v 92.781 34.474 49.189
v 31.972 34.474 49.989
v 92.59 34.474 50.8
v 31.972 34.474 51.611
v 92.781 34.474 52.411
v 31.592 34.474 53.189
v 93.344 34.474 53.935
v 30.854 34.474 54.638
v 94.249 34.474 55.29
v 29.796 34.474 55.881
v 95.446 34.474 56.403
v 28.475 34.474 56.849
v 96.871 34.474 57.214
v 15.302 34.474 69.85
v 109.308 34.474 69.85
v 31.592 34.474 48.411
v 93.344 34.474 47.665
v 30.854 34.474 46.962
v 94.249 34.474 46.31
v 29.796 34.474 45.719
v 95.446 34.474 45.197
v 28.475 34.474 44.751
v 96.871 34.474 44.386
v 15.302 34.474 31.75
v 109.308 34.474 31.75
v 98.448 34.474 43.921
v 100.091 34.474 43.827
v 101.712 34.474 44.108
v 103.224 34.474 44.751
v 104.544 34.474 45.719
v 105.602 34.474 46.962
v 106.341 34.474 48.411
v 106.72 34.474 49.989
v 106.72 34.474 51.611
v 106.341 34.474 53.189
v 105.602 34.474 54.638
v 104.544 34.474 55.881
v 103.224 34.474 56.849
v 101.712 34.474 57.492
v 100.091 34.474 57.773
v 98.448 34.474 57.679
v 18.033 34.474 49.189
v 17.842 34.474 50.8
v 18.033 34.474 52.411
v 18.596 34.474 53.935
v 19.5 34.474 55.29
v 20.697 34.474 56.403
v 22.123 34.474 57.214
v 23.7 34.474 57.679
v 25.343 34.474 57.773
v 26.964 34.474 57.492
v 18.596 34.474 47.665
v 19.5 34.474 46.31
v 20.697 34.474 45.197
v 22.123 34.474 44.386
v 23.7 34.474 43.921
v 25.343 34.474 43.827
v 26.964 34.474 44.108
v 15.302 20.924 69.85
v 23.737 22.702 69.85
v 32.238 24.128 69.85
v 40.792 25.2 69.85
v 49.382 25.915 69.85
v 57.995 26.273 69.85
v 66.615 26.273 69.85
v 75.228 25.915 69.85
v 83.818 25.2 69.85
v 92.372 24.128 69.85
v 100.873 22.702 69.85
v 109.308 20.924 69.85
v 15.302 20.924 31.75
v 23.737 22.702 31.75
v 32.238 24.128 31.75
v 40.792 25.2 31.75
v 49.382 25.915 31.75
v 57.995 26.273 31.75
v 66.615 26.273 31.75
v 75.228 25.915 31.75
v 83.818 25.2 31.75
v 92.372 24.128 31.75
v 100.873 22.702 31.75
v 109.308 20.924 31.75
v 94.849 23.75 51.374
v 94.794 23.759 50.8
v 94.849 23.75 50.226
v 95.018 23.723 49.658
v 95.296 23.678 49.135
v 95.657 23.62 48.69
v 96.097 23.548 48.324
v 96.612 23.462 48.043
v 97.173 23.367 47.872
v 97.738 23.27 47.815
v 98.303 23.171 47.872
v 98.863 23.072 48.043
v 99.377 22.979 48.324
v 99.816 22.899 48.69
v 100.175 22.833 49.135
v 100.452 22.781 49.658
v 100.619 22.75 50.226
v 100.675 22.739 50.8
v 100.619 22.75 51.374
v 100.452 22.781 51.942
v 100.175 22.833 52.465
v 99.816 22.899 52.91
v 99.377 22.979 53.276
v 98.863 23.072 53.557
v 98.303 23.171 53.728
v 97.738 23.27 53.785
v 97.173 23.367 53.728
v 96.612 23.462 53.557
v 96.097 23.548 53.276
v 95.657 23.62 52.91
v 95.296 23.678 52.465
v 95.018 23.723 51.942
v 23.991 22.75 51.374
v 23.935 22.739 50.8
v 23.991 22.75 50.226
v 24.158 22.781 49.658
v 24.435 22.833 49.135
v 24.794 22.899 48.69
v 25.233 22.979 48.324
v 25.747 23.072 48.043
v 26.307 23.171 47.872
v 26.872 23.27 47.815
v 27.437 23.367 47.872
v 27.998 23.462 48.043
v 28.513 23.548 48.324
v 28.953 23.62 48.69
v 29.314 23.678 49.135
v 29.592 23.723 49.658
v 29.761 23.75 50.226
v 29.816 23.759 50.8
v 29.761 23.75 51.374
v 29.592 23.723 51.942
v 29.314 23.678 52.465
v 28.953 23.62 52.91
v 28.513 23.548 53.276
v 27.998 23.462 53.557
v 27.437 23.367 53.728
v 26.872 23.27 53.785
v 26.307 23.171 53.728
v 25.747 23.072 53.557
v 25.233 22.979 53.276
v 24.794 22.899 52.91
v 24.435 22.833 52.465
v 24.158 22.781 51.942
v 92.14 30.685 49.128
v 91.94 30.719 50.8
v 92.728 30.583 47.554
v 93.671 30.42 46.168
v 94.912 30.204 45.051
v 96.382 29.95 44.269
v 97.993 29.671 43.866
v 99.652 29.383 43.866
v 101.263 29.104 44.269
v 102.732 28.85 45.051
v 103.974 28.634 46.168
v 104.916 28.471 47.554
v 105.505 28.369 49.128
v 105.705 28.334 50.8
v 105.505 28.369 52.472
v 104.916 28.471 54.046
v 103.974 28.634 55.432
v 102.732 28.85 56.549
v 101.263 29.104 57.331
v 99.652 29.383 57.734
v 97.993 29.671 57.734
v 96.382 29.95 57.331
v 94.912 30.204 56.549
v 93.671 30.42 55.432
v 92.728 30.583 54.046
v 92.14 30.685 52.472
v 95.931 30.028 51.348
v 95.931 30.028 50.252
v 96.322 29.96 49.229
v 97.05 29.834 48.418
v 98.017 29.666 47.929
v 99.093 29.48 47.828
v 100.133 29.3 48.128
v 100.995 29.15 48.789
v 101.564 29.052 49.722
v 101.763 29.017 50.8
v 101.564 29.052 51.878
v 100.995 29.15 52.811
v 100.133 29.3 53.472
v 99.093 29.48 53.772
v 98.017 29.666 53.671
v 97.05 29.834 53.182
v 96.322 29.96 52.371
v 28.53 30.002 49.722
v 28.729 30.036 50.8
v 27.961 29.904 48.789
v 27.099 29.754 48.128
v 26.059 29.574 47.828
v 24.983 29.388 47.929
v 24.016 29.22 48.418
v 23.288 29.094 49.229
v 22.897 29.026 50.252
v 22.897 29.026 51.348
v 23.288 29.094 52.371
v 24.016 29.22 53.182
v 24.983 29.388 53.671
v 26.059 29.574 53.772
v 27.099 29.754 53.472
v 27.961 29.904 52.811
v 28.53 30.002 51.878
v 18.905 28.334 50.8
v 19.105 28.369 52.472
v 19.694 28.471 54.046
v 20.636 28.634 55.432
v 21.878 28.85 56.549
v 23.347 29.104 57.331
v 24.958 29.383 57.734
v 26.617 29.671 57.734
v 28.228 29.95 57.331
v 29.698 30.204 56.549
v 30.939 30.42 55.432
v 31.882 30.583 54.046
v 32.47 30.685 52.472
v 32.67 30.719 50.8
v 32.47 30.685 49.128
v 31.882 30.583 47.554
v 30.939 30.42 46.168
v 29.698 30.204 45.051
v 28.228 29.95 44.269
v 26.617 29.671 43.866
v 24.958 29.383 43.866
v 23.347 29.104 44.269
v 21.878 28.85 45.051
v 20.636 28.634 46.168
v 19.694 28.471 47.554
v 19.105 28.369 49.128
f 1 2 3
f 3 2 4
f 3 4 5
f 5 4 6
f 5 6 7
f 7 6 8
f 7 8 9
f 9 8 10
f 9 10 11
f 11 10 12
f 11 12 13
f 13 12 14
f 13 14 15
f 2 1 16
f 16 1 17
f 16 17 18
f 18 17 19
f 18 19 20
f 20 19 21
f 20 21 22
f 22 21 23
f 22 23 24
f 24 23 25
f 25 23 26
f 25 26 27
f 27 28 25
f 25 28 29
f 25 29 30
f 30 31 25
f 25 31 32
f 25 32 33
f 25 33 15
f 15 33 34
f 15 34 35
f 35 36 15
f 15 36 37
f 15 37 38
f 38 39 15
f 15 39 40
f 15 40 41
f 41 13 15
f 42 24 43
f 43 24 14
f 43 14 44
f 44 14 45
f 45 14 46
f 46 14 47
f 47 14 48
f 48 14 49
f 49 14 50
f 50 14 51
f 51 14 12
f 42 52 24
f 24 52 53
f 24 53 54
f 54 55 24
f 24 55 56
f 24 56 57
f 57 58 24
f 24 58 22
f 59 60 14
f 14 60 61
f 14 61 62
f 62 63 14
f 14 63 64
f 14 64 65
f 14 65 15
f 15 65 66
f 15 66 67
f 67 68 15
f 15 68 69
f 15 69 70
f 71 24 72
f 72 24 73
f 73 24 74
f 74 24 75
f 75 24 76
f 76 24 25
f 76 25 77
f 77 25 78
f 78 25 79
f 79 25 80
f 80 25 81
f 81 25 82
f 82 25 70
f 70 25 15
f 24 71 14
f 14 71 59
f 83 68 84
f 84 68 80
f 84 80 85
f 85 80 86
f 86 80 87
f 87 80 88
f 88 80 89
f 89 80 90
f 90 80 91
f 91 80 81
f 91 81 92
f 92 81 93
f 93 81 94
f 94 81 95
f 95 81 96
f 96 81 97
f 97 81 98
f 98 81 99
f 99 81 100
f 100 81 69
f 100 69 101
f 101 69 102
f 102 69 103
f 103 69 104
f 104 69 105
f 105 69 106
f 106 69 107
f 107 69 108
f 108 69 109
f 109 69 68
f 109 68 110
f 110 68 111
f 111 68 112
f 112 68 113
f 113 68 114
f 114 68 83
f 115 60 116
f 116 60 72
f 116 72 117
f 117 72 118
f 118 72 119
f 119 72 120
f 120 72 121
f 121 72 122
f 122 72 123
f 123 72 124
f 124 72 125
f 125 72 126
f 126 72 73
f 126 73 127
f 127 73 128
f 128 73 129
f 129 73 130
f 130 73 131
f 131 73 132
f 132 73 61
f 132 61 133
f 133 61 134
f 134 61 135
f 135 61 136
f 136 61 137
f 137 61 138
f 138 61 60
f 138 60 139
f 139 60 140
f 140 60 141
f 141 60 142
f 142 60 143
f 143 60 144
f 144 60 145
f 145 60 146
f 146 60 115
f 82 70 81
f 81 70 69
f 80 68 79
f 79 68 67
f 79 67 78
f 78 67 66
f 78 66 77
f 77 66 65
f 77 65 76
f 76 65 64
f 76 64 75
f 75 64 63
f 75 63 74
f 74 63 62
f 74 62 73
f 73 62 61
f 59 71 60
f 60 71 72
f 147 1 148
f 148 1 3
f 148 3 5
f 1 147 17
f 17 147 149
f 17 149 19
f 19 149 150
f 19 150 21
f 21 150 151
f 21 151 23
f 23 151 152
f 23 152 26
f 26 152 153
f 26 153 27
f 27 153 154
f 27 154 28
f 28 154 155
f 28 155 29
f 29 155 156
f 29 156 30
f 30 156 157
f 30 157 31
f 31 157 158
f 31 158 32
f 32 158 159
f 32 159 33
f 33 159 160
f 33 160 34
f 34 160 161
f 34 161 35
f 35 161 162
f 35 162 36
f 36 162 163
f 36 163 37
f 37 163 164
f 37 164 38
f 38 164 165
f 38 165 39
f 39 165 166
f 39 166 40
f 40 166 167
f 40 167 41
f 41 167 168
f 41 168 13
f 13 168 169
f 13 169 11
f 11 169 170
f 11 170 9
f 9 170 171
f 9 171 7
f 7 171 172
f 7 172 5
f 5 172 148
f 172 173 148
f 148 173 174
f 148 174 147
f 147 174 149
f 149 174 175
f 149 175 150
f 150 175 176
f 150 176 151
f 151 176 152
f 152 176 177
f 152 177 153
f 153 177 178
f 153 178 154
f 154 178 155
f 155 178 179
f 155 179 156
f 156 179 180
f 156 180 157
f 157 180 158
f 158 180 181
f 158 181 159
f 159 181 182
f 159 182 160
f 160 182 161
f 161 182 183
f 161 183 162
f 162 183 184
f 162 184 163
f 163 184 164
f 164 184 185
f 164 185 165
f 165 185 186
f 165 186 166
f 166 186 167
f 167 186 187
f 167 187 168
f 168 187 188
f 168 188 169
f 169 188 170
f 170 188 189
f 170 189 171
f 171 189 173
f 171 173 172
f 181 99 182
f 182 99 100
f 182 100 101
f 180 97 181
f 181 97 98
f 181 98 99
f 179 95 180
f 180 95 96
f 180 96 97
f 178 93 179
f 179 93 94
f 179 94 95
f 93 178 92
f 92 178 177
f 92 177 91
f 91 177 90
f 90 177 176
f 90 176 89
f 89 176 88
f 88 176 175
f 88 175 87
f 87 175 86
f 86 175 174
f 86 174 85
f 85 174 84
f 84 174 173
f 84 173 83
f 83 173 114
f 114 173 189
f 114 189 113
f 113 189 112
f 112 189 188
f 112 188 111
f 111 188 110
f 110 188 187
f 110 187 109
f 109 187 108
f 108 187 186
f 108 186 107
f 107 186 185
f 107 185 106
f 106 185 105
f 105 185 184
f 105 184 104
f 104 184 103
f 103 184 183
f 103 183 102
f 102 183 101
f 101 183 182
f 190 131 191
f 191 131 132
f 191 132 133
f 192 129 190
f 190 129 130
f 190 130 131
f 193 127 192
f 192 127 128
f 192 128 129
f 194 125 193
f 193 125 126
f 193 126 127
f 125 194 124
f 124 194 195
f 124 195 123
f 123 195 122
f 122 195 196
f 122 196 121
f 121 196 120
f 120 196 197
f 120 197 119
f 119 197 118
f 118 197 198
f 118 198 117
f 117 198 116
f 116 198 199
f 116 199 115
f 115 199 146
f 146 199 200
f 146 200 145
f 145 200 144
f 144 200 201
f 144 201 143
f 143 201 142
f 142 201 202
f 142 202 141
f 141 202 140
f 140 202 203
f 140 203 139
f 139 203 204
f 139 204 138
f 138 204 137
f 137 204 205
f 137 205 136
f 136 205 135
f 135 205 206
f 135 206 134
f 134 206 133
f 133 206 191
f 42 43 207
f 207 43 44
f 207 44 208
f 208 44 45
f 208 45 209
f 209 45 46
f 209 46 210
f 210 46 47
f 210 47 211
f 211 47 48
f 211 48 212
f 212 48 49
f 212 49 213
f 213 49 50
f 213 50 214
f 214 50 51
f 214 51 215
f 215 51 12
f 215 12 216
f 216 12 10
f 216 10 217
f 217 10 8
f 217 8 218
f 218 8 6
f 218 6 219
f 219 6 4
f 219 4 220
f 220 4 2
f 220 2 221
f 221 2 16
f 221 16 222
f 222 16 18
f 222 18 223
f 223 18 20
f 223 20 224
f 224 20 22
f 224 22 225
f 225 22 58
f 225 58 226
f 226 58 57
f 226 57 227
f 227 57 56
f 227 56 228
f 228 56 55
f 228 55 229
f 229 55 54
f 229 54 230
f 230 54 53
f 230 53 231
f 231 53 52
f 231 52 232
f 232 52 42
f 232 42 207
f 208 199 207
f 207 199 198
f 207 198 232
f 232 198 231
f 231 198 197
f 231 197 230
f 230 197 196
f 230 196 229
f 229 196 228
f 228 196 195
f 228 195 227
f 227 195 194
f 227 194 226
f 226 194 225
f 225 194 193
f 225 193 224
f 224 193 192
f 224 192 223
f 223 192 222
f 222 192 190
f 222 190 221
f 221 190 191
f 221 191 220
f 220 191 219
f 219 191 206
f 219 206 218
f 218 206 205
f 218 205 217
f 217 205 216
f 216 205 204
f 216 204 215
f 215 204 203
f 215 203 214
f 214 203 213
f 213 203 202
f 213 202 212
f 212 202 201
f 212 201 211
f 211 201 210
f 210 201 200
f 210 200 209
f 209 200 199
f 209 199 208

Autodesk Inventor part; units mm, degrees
ref_plane "YZ Plane" through (0, 0, 0) normal (1, 0, 0) x (0, 1, 0)
ref_plane "XZ Plane" through (0, 0, 0) normal (0, 1, 0) x (-1, 0, 0)
ref_plane "XY Plane" through (0, 0, 0) normal (0, 0, 1) x (1, 0, 0)
sketch "Sketch3" plane through (0, 0, 0) normal (0, 0, 1) x (1, 0, 0)
  line L0 (11.505, 42.3202) -> (113.105, 42.3202)
  line L1 (113.105, 42.3202) -> (113.105, 16.9202)
  line L2 (113.105, 16.9202) -> (11.505, 16.9202)
  line L3 (11.505, 16.9202) -> (11.505, 42.3202)
  point P0 (0, 0)
  dimension "d11" = 101.6
  dimension "d12" = 25.4
extrude "Extrusion1" add sketch "Sketch3" along normal blind 50.8
sketch "Sketch4" plane through (0, 0, 50.8) normal (0, 0, 1) x (1, 0, 0)
  line L0 (11.505, 16.9202) -> (113.105, 16.9202) projected
  line L1 (62.305, 23.2702) -> (62.305, 26.3182)
  line L2 (97.738, 23.2702) -> (26.872, 23.2702)
  circle A0 centre (62.305, -181.1601) radius 207.4783
  point P0 (0, 0)
extrude "Extrusion2" cut sketch "Sketch4" against normal blind 50.8
sketch "Sketch6" plane through (0, 0, 50.8) normal (0, 0, 1) x (1, 0, 0)
  arc A0 (113.105, 20.003) -> (11.505, 20.003) centre (62.305, -181.1601) ccw projected
  line L0 (62.305, 26.3182) -> (62.305, 23.2702)
  line L1 (62.305, 23.2702) -> (26.872, 23.2702)
  line L2 (26.872, 23.2702) -> (97.738, 23.2702)
  arc A1 (97.738, 23.2702) -> (26.872, 23.2702) centre (62.305, -181.1601) ccw
  line L3 (26.872, 23.2702) -> (29.8127, 23.7797)
  line L4 (26.872, 23.2702) -> (29.8565, 23.2702) construction
  line L5 (29.8127, 23.7797) -> (28.7286, 30.0365)
  line L6 (28.7286, 30.0365) -> (32.6703, 30.7195)
  line L7 (32.6703, 30.7195) -> (32.0199, 34.4735)
  line L8 (26.872, 23.2702) -> (22.5356, 48.2973)
  line L9 (26.872, 23.2702) -> (52.272, 23.2702) construction
  line L10 (22.5356, 48.2973) -> (29.418, 49.4898)
  line L11 (29.418, 49.4898) -> (32.0199, 34.4735)
  line L12 (29.8127, 23.7797) -> (29.9804, 22.8117)
  line L13 (29.9804, 22.8117) -> (27.0397, 22.3022)
  line L14 (27.0397, 22.3022) -> (26.872, 23.2702)
  point P0 (0, 0)
  dimension "d39" = 3.048
  dimension "d40" = 35.433
  dimension "d41" = 2.9845
  dimension "d42" = 9.83
  dimension "d43" = 6.35
  dimension "d44" = 90
  dimension "d45" = 4.0005
  dimension "d46" = 90
  dimension "d47" = 3.81
  dimension "d48" = 25.4
  dimension "d49" = 99.83
revolve "Revolution1" cut sketch "Sketch6" angle 360 about axis through (26.872, 23.2702, 50.8) along (-0.1707254, 0.9853186, 0) contours L12 L1 A0 | A0 L3 L12 | L12 L13 L14 L1 | L8 L10 L11 L7 L6 L5 L3
ref_plane "Work Plane2" through (62.305, 42.3202, 50.8) normal (1, 0, 0) x (0, 0, -1)
mirror "Mirror1" about plane through (62.305, 42.3202, 50.8) normal (1, 0, 0) of "Revolution1"
sketch "Sketch7" plane through (0, 0, 50.8) normal (0, 0, 1) x (1, 0, 0)
  line L0 (18.9054, 28.3344) -> (16.4821, 42.3202) projected
  line L1 (18.9054, 28.3344) -> (18.255, 32.0885)
  line L2 (18.255, 32.0885) -> (32.0199, 34.4735)
  line L3 (32.0199, 34.4735) -> (32.6703, 30.7195)
  line L4 (32.0199, 34.4735) -> (113.105, 34.4735)
  line L5 (113.105, 20.003) -> (113.105, 42.3202) projected
  line L6 (16.4821, 42.3202) -> (11.505, 42.3202) projected
  line L7 (113.105, 34.4735) -> (11.505, 34.4735)
  line L8 (11.505, 34.4735) -> (11.505, 42.3202)
  line L9 (11.505, 42.3202) -> (113.105, 42.3202)
  line L10 (113.105, 42.3202) -> (113.105, 34.4735)
  point P0 (0, 0)
  dimension "d52" = 3.81
  dimension "d53" = 13.97
  dimension "d54" = 90
extrude "Extrusion3" cut sketch "Sketch7" against normal blind 50.8 contours L7 L8 L6 L0 | L0 L9 L5 L4 L7
sketch "Sketch8" plane through (0, 0, 50.8) normal (0, 0, 1) x (1, 0, 0)
  line L0 (18.9054, 28.3344) -> (17.8417, 34.4735) projected
  line L1 (17.8417, 34.4735) -> (15.3017, 34.4735)
  line L2 (11.505, 34.4735) -> (113.105, 34.4735) projected
  line L3 (15.3017, 34.4735) -> (15.3017, 16.7671)
  line L4 (15.3017, 16.7671) -> (7.6342, 16.7671)
  line L5 (7.6342, 16.7671) -> (7.6342, 34.4735)
  line L6 (7.6342, 34.4735) -> (15.3017, 34.4735)
  line L7 (62.305, 34.4735) -> (62.305, 19.3718)
  line L8 (109.3083, 34.4735) -> (109.3083, 16.7671)
  line L9 (109.3083, 16.7671) -> (116.9758, 16.7671)
  line L10 (116.9758, 16.7671) -> (116.9758, 34.4735)
  line L11 (116.9758, 34.4735) -> (109.3083, 34.4735)
  point P0 (0, 0)
  dimension "d57" = 2.54
extrude "Extrusion4" cut sketch "Sketch8" against normal blind 50.8
sketch "Sketch9" plane through (0, 0, 0) normal (0, 0, -1) x (-1, 0, 0)
  line L0 (-123.5208, 45.9759) -> (-4.4224, 45.9759)
  line L1 (-4.4224, 45.9759) -> (-4.4224, 6.2764)
  line L2 (-4.4224, 6.2764) -> (-123.5208, 6.2764)
  line L3 (-123.5208, 6.2764) -> (-123.5208, 45.9759)
  point P0 (0, 0)
extrude "Extrusion5" cut sketch "Sketch9" against normal blind 31.75
sketch "Sketch10" plane through (0, 0, 50.8) normal (0, 0, 1) x (1, 0, 0)
  arc A0 (23.935, 22.7393) -> (15.3017, 20.9239) centre (62.305, -181.1601) ccw projected
  line L0 (15.3017, 34.4735) -> (15.3017, 20.9239) projected
  line L1 (15.3017, 20.9239) -> (15.3017, 34.4735)
  line L2 (109.3083, 20.9239) -> (109.3083, 34.4735) projected
  line L3 (15.3017, 34.4735) -> (109.3083, 34.4735)
  line L4 (109.3083, 34.4735) -> (109.3083, 20.9239)
  arc A1 (109.3083, 20.9239) -> (15.3017, 20.9239) centre (62.305, -181.1601) ccw
  point P0 (0, 0)
  point P1 (23.935, 22.7393)
extrude "Extrusion6" add sketch "Sketch10" along normal blind 19.05
mirror "Mirror5" about plane through (62.305, 27.6987, 50.8) normal (0, 0, -1) of "Revolution1", "Mirror1"
properties part number "MountPlateV1"
